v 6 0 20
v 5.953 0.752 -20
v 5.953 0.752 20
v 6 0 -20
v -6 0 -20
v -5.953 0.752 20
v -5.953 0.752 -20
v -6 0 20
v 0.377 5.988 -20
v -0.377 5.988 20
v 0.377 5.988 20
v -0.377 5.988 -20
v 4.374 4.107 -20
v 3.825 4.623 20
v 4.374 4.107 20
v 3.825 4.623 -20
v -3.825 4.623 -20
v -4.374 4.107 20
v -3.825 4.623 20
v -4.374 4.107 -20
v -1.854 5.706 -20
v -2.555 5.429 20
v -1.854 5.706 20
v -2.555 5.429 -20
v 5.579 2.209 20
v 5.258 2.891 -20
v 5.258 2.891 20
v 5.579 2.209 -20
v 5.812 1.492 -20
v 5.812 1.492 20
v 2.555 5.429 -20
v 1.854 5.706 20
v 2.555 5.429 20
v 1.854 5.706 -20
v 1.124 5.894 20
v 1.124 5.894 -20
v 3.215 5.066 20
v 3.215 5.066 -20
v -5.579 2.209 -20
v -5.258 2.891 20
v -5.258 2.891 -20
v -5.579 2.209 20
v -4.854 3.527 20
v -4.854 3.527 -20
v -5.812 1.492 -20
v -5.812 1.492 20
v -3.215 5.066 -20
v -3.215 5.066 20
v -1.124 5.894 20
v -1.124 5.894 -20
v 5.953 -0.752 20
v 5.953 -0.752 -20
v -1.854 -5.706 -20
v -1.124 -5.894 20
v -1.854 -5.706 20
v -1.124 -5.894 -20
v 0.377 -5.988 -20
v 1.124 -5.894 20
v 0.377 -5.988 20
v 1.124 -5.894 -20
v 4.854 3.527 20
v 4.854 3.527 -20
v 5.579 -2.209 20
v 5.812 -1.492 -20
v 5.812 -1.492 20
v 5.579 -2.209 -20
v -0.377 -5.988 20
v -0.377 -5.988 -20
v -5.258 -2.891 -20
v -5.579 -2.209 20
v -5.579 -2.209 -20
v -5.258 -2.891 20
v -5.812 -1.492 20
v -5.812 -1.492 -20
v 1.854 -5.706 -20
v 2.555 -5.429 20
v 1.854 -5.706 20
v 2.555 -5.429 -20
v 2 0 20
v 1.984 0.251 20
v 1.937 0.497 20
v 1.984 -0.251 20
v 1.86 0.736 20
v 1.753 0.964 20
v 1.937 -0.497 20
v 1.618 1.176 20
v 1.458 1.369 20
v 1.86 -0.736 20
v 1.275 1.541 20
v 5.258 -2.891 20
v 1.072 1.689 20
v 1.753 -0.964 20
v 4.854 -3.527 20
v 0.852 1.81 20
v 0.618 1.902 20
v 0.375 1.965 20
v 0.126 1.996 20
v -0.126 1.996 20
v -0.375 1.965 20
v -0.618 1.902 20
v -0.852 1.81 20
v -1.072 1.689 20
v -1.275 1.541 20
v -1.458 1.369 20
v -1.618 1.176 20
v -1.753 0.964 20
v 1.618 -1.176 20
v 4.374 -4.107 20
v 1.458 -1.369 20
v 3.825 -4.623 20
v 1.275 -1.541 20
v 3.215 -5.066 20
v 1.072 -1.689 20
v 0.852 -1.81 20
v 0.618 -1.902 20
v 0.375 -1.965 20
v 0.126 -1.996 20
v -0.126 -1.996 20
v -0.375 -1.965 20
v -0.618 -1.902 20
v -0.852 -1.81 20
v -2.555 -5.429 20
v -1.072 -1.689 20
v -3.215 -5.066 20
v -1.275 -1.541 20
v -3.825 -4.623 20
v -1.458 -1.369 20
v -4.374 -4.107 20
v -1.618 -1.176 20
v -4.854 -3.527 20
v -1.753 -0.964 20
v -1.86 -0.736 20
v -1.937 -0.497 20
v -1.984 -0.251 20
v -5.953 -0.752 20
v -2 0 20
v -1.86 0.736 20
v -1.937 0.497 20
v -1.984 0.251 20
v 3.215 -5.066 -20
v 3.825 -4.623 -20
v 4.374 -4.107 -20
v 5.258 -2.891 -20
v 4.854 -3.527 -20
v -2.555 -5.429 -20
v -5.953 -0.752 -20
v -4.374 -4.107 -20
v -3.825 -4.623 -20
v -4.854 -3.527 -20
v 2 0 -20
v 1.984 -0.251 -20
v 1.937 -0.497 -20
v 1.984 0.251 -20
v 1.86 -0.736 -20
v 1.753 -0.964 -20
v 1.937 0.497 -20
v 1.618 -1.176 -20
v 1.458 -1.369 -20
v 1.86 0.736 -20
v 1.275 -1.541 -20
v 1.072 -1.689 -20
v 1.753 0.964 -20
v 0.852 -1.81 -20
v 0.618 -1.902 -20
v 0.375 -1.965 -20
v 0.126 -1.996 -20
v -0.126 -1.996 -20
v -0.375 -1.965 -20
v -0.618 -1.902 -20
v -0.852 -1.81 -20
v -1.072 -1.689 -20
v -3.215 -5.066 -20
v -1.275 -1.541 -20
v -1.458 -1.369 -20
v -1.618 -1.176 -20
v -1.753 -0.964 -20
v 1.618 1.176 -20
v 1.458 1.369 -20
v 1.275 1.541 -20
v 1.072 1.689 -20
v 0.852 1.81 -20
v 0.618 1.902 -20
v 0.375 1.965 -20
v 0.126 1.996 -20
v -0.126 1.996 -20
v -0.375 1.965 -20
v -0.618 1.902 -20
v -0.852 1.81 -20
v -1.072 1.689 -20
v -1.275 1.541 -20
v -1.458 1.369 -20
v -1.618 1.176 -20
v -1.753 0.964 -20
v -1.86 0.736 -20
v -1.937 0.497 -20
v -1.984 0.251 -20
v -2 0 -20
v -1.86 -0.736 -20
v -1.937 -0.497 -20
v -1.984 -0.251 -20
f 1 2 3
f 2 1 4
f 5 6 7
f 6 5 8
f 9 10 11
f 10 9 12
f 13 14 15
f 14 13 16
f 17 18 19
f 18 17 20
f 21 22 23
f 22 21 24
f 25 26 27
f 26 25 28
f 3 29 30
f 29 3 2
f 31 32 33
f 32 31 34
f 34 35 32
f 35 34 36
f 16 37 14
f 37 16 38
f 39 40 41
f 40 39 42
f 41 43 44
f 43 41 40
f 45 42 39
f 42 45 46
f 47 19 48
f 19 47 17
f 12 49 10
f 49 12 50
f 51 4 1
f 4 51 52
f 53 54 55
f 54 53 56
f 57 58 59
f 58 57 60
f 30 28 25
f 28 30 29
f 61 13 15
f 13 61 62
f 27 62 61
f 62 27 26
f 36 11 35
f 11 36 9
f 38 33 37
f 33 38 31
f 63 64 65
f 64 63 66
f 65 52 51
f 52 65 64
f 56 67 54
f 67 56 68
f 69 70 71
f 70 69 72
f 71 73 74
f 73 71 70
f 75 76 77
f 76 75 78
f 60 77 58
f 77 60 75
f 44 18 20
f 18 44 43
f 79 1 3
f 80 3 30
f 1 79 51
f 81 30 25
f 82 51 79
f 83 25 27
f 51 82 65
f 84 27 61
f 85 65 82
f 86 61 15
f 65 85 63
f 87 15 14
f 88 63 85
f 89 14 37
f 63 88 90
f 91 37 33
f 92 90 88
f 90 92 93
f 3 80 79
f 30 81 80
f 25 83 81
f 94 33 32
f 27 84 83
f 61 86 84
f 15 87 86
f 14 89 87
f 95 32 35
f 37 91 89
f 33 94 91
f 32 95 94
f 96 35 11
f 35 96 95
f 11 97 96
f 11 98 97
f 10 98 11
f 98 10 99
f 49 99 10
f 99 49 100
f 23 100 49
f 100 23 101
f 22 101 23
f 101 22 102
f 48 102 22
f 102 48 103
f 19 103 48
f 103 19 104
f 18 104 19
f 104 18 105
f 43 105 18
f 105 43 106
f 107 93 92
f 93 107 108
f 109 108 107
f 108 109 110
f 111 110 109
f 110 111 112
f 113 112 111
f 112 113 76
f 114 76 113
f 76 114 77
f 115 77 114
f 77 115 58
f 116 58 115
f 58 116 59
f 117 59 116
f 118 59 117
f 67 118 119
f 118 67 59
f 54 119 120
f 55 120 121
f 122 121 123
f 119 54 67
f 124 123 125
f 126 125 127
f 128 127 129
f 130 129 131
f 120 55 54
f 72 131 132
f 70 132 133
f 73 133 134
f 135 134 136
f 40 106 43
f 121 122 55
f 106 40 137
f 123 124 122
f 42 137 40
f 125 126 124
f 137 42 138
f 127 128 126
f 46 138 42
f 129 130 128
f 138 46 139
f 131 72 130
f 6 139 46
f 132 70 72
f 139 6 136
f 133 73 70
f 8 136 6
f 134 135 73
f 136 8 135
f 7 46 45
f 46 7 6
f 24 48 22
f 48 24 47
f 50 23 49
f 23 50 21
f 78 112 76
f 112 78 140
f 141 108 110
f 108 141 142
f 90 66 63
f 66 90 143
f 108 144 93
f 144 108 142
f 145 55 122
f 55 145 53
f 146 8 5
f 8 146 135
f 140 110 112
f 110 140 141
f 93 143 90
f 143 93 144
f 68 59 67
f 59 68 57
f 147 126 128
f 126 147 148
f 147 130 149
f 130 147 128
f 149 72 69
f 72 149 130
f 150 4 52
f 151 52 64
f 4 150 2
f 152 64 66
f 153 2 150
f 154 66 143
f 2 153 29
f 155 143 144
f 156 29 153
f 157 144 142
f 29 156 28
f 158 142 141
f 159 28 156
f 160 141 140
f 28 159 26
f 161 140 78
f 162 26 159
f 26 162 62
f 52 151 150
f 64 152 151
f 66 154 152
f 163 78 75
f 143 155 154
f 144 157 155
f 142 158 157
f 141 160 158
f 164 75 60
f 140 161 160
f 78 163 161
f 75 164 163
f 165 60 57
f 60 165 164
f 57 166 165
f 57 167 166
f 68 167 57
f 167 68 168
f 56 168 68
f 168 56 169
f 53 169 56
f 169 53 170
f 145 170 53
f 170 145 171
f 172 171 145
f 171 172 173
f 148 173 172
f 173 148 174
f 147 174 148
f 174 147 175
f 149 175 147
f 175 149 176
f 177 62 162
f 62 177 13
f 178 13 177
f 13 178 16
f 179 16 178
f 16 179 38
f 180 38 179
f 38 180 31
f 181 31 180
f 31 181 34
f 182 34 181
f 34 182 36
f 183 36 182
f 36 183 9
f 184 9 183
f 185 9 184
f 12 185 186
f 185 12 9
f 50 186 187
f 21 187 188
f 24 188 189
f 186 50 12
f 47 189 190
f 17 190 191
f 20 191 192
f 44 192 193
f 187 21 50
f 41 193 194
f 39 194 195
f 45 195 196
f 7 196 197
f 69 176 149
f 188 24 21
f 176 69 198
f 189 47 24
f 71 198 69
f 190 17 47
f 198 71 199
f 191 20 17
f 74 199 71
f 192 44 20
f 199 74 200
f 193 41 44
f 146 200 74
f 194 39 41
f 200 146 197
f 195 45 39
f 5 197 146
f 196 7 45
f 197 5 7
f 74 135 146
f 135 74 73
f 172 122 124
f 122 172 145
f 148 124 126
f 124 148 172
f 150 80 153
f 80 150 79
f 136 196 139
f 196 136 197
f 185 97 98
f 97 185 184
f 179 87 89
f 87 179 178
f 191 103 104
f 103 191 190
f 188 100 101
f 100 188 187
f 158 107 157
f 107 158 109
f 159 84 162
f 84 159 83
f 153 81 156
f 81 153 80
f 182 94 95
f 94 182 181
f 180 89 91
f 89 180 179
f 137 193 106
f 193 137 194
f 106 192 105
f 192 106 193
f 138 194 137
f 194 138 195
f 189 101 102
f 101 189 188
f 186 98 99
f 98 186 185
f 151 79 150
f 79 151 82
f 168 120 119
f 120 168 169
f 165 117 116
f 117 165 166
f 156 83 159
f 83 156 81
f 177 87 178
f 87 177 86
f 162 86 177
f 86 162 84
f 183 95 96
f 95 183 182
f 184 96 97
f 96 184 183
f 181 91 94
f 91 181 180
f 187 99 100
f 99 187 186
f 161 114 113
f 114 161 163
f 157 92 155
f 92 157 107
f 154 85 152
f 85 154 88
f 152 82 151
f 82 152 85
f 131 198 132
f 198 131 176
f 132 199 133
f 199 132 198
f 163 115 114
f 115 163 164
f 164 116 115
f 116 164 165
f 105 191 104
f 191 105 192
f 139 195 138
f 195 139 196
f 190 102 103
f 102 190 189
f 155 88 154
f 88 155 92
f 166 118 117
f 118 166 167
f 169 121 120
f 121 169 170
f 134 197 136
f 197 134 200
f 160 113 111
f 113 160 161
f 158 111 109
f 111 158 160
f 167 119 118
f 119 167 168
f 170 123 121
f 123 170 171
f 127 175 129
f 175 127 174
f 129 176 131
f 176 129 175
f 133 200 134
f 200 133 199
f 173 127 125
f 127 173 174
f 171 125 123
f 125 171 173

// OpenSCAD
$fn = 50;


difference() {
	union() {
		translate(v = [0, 0, -20.0000000000]) {
			cylinder(h = 40, r = 6.0000000000);
		}
	}
	union() {
		translate(v = [0, 0, -100.0000000000]) {
			cylinder(h = 200, r = 2.0000000000);
		}
	}
}
